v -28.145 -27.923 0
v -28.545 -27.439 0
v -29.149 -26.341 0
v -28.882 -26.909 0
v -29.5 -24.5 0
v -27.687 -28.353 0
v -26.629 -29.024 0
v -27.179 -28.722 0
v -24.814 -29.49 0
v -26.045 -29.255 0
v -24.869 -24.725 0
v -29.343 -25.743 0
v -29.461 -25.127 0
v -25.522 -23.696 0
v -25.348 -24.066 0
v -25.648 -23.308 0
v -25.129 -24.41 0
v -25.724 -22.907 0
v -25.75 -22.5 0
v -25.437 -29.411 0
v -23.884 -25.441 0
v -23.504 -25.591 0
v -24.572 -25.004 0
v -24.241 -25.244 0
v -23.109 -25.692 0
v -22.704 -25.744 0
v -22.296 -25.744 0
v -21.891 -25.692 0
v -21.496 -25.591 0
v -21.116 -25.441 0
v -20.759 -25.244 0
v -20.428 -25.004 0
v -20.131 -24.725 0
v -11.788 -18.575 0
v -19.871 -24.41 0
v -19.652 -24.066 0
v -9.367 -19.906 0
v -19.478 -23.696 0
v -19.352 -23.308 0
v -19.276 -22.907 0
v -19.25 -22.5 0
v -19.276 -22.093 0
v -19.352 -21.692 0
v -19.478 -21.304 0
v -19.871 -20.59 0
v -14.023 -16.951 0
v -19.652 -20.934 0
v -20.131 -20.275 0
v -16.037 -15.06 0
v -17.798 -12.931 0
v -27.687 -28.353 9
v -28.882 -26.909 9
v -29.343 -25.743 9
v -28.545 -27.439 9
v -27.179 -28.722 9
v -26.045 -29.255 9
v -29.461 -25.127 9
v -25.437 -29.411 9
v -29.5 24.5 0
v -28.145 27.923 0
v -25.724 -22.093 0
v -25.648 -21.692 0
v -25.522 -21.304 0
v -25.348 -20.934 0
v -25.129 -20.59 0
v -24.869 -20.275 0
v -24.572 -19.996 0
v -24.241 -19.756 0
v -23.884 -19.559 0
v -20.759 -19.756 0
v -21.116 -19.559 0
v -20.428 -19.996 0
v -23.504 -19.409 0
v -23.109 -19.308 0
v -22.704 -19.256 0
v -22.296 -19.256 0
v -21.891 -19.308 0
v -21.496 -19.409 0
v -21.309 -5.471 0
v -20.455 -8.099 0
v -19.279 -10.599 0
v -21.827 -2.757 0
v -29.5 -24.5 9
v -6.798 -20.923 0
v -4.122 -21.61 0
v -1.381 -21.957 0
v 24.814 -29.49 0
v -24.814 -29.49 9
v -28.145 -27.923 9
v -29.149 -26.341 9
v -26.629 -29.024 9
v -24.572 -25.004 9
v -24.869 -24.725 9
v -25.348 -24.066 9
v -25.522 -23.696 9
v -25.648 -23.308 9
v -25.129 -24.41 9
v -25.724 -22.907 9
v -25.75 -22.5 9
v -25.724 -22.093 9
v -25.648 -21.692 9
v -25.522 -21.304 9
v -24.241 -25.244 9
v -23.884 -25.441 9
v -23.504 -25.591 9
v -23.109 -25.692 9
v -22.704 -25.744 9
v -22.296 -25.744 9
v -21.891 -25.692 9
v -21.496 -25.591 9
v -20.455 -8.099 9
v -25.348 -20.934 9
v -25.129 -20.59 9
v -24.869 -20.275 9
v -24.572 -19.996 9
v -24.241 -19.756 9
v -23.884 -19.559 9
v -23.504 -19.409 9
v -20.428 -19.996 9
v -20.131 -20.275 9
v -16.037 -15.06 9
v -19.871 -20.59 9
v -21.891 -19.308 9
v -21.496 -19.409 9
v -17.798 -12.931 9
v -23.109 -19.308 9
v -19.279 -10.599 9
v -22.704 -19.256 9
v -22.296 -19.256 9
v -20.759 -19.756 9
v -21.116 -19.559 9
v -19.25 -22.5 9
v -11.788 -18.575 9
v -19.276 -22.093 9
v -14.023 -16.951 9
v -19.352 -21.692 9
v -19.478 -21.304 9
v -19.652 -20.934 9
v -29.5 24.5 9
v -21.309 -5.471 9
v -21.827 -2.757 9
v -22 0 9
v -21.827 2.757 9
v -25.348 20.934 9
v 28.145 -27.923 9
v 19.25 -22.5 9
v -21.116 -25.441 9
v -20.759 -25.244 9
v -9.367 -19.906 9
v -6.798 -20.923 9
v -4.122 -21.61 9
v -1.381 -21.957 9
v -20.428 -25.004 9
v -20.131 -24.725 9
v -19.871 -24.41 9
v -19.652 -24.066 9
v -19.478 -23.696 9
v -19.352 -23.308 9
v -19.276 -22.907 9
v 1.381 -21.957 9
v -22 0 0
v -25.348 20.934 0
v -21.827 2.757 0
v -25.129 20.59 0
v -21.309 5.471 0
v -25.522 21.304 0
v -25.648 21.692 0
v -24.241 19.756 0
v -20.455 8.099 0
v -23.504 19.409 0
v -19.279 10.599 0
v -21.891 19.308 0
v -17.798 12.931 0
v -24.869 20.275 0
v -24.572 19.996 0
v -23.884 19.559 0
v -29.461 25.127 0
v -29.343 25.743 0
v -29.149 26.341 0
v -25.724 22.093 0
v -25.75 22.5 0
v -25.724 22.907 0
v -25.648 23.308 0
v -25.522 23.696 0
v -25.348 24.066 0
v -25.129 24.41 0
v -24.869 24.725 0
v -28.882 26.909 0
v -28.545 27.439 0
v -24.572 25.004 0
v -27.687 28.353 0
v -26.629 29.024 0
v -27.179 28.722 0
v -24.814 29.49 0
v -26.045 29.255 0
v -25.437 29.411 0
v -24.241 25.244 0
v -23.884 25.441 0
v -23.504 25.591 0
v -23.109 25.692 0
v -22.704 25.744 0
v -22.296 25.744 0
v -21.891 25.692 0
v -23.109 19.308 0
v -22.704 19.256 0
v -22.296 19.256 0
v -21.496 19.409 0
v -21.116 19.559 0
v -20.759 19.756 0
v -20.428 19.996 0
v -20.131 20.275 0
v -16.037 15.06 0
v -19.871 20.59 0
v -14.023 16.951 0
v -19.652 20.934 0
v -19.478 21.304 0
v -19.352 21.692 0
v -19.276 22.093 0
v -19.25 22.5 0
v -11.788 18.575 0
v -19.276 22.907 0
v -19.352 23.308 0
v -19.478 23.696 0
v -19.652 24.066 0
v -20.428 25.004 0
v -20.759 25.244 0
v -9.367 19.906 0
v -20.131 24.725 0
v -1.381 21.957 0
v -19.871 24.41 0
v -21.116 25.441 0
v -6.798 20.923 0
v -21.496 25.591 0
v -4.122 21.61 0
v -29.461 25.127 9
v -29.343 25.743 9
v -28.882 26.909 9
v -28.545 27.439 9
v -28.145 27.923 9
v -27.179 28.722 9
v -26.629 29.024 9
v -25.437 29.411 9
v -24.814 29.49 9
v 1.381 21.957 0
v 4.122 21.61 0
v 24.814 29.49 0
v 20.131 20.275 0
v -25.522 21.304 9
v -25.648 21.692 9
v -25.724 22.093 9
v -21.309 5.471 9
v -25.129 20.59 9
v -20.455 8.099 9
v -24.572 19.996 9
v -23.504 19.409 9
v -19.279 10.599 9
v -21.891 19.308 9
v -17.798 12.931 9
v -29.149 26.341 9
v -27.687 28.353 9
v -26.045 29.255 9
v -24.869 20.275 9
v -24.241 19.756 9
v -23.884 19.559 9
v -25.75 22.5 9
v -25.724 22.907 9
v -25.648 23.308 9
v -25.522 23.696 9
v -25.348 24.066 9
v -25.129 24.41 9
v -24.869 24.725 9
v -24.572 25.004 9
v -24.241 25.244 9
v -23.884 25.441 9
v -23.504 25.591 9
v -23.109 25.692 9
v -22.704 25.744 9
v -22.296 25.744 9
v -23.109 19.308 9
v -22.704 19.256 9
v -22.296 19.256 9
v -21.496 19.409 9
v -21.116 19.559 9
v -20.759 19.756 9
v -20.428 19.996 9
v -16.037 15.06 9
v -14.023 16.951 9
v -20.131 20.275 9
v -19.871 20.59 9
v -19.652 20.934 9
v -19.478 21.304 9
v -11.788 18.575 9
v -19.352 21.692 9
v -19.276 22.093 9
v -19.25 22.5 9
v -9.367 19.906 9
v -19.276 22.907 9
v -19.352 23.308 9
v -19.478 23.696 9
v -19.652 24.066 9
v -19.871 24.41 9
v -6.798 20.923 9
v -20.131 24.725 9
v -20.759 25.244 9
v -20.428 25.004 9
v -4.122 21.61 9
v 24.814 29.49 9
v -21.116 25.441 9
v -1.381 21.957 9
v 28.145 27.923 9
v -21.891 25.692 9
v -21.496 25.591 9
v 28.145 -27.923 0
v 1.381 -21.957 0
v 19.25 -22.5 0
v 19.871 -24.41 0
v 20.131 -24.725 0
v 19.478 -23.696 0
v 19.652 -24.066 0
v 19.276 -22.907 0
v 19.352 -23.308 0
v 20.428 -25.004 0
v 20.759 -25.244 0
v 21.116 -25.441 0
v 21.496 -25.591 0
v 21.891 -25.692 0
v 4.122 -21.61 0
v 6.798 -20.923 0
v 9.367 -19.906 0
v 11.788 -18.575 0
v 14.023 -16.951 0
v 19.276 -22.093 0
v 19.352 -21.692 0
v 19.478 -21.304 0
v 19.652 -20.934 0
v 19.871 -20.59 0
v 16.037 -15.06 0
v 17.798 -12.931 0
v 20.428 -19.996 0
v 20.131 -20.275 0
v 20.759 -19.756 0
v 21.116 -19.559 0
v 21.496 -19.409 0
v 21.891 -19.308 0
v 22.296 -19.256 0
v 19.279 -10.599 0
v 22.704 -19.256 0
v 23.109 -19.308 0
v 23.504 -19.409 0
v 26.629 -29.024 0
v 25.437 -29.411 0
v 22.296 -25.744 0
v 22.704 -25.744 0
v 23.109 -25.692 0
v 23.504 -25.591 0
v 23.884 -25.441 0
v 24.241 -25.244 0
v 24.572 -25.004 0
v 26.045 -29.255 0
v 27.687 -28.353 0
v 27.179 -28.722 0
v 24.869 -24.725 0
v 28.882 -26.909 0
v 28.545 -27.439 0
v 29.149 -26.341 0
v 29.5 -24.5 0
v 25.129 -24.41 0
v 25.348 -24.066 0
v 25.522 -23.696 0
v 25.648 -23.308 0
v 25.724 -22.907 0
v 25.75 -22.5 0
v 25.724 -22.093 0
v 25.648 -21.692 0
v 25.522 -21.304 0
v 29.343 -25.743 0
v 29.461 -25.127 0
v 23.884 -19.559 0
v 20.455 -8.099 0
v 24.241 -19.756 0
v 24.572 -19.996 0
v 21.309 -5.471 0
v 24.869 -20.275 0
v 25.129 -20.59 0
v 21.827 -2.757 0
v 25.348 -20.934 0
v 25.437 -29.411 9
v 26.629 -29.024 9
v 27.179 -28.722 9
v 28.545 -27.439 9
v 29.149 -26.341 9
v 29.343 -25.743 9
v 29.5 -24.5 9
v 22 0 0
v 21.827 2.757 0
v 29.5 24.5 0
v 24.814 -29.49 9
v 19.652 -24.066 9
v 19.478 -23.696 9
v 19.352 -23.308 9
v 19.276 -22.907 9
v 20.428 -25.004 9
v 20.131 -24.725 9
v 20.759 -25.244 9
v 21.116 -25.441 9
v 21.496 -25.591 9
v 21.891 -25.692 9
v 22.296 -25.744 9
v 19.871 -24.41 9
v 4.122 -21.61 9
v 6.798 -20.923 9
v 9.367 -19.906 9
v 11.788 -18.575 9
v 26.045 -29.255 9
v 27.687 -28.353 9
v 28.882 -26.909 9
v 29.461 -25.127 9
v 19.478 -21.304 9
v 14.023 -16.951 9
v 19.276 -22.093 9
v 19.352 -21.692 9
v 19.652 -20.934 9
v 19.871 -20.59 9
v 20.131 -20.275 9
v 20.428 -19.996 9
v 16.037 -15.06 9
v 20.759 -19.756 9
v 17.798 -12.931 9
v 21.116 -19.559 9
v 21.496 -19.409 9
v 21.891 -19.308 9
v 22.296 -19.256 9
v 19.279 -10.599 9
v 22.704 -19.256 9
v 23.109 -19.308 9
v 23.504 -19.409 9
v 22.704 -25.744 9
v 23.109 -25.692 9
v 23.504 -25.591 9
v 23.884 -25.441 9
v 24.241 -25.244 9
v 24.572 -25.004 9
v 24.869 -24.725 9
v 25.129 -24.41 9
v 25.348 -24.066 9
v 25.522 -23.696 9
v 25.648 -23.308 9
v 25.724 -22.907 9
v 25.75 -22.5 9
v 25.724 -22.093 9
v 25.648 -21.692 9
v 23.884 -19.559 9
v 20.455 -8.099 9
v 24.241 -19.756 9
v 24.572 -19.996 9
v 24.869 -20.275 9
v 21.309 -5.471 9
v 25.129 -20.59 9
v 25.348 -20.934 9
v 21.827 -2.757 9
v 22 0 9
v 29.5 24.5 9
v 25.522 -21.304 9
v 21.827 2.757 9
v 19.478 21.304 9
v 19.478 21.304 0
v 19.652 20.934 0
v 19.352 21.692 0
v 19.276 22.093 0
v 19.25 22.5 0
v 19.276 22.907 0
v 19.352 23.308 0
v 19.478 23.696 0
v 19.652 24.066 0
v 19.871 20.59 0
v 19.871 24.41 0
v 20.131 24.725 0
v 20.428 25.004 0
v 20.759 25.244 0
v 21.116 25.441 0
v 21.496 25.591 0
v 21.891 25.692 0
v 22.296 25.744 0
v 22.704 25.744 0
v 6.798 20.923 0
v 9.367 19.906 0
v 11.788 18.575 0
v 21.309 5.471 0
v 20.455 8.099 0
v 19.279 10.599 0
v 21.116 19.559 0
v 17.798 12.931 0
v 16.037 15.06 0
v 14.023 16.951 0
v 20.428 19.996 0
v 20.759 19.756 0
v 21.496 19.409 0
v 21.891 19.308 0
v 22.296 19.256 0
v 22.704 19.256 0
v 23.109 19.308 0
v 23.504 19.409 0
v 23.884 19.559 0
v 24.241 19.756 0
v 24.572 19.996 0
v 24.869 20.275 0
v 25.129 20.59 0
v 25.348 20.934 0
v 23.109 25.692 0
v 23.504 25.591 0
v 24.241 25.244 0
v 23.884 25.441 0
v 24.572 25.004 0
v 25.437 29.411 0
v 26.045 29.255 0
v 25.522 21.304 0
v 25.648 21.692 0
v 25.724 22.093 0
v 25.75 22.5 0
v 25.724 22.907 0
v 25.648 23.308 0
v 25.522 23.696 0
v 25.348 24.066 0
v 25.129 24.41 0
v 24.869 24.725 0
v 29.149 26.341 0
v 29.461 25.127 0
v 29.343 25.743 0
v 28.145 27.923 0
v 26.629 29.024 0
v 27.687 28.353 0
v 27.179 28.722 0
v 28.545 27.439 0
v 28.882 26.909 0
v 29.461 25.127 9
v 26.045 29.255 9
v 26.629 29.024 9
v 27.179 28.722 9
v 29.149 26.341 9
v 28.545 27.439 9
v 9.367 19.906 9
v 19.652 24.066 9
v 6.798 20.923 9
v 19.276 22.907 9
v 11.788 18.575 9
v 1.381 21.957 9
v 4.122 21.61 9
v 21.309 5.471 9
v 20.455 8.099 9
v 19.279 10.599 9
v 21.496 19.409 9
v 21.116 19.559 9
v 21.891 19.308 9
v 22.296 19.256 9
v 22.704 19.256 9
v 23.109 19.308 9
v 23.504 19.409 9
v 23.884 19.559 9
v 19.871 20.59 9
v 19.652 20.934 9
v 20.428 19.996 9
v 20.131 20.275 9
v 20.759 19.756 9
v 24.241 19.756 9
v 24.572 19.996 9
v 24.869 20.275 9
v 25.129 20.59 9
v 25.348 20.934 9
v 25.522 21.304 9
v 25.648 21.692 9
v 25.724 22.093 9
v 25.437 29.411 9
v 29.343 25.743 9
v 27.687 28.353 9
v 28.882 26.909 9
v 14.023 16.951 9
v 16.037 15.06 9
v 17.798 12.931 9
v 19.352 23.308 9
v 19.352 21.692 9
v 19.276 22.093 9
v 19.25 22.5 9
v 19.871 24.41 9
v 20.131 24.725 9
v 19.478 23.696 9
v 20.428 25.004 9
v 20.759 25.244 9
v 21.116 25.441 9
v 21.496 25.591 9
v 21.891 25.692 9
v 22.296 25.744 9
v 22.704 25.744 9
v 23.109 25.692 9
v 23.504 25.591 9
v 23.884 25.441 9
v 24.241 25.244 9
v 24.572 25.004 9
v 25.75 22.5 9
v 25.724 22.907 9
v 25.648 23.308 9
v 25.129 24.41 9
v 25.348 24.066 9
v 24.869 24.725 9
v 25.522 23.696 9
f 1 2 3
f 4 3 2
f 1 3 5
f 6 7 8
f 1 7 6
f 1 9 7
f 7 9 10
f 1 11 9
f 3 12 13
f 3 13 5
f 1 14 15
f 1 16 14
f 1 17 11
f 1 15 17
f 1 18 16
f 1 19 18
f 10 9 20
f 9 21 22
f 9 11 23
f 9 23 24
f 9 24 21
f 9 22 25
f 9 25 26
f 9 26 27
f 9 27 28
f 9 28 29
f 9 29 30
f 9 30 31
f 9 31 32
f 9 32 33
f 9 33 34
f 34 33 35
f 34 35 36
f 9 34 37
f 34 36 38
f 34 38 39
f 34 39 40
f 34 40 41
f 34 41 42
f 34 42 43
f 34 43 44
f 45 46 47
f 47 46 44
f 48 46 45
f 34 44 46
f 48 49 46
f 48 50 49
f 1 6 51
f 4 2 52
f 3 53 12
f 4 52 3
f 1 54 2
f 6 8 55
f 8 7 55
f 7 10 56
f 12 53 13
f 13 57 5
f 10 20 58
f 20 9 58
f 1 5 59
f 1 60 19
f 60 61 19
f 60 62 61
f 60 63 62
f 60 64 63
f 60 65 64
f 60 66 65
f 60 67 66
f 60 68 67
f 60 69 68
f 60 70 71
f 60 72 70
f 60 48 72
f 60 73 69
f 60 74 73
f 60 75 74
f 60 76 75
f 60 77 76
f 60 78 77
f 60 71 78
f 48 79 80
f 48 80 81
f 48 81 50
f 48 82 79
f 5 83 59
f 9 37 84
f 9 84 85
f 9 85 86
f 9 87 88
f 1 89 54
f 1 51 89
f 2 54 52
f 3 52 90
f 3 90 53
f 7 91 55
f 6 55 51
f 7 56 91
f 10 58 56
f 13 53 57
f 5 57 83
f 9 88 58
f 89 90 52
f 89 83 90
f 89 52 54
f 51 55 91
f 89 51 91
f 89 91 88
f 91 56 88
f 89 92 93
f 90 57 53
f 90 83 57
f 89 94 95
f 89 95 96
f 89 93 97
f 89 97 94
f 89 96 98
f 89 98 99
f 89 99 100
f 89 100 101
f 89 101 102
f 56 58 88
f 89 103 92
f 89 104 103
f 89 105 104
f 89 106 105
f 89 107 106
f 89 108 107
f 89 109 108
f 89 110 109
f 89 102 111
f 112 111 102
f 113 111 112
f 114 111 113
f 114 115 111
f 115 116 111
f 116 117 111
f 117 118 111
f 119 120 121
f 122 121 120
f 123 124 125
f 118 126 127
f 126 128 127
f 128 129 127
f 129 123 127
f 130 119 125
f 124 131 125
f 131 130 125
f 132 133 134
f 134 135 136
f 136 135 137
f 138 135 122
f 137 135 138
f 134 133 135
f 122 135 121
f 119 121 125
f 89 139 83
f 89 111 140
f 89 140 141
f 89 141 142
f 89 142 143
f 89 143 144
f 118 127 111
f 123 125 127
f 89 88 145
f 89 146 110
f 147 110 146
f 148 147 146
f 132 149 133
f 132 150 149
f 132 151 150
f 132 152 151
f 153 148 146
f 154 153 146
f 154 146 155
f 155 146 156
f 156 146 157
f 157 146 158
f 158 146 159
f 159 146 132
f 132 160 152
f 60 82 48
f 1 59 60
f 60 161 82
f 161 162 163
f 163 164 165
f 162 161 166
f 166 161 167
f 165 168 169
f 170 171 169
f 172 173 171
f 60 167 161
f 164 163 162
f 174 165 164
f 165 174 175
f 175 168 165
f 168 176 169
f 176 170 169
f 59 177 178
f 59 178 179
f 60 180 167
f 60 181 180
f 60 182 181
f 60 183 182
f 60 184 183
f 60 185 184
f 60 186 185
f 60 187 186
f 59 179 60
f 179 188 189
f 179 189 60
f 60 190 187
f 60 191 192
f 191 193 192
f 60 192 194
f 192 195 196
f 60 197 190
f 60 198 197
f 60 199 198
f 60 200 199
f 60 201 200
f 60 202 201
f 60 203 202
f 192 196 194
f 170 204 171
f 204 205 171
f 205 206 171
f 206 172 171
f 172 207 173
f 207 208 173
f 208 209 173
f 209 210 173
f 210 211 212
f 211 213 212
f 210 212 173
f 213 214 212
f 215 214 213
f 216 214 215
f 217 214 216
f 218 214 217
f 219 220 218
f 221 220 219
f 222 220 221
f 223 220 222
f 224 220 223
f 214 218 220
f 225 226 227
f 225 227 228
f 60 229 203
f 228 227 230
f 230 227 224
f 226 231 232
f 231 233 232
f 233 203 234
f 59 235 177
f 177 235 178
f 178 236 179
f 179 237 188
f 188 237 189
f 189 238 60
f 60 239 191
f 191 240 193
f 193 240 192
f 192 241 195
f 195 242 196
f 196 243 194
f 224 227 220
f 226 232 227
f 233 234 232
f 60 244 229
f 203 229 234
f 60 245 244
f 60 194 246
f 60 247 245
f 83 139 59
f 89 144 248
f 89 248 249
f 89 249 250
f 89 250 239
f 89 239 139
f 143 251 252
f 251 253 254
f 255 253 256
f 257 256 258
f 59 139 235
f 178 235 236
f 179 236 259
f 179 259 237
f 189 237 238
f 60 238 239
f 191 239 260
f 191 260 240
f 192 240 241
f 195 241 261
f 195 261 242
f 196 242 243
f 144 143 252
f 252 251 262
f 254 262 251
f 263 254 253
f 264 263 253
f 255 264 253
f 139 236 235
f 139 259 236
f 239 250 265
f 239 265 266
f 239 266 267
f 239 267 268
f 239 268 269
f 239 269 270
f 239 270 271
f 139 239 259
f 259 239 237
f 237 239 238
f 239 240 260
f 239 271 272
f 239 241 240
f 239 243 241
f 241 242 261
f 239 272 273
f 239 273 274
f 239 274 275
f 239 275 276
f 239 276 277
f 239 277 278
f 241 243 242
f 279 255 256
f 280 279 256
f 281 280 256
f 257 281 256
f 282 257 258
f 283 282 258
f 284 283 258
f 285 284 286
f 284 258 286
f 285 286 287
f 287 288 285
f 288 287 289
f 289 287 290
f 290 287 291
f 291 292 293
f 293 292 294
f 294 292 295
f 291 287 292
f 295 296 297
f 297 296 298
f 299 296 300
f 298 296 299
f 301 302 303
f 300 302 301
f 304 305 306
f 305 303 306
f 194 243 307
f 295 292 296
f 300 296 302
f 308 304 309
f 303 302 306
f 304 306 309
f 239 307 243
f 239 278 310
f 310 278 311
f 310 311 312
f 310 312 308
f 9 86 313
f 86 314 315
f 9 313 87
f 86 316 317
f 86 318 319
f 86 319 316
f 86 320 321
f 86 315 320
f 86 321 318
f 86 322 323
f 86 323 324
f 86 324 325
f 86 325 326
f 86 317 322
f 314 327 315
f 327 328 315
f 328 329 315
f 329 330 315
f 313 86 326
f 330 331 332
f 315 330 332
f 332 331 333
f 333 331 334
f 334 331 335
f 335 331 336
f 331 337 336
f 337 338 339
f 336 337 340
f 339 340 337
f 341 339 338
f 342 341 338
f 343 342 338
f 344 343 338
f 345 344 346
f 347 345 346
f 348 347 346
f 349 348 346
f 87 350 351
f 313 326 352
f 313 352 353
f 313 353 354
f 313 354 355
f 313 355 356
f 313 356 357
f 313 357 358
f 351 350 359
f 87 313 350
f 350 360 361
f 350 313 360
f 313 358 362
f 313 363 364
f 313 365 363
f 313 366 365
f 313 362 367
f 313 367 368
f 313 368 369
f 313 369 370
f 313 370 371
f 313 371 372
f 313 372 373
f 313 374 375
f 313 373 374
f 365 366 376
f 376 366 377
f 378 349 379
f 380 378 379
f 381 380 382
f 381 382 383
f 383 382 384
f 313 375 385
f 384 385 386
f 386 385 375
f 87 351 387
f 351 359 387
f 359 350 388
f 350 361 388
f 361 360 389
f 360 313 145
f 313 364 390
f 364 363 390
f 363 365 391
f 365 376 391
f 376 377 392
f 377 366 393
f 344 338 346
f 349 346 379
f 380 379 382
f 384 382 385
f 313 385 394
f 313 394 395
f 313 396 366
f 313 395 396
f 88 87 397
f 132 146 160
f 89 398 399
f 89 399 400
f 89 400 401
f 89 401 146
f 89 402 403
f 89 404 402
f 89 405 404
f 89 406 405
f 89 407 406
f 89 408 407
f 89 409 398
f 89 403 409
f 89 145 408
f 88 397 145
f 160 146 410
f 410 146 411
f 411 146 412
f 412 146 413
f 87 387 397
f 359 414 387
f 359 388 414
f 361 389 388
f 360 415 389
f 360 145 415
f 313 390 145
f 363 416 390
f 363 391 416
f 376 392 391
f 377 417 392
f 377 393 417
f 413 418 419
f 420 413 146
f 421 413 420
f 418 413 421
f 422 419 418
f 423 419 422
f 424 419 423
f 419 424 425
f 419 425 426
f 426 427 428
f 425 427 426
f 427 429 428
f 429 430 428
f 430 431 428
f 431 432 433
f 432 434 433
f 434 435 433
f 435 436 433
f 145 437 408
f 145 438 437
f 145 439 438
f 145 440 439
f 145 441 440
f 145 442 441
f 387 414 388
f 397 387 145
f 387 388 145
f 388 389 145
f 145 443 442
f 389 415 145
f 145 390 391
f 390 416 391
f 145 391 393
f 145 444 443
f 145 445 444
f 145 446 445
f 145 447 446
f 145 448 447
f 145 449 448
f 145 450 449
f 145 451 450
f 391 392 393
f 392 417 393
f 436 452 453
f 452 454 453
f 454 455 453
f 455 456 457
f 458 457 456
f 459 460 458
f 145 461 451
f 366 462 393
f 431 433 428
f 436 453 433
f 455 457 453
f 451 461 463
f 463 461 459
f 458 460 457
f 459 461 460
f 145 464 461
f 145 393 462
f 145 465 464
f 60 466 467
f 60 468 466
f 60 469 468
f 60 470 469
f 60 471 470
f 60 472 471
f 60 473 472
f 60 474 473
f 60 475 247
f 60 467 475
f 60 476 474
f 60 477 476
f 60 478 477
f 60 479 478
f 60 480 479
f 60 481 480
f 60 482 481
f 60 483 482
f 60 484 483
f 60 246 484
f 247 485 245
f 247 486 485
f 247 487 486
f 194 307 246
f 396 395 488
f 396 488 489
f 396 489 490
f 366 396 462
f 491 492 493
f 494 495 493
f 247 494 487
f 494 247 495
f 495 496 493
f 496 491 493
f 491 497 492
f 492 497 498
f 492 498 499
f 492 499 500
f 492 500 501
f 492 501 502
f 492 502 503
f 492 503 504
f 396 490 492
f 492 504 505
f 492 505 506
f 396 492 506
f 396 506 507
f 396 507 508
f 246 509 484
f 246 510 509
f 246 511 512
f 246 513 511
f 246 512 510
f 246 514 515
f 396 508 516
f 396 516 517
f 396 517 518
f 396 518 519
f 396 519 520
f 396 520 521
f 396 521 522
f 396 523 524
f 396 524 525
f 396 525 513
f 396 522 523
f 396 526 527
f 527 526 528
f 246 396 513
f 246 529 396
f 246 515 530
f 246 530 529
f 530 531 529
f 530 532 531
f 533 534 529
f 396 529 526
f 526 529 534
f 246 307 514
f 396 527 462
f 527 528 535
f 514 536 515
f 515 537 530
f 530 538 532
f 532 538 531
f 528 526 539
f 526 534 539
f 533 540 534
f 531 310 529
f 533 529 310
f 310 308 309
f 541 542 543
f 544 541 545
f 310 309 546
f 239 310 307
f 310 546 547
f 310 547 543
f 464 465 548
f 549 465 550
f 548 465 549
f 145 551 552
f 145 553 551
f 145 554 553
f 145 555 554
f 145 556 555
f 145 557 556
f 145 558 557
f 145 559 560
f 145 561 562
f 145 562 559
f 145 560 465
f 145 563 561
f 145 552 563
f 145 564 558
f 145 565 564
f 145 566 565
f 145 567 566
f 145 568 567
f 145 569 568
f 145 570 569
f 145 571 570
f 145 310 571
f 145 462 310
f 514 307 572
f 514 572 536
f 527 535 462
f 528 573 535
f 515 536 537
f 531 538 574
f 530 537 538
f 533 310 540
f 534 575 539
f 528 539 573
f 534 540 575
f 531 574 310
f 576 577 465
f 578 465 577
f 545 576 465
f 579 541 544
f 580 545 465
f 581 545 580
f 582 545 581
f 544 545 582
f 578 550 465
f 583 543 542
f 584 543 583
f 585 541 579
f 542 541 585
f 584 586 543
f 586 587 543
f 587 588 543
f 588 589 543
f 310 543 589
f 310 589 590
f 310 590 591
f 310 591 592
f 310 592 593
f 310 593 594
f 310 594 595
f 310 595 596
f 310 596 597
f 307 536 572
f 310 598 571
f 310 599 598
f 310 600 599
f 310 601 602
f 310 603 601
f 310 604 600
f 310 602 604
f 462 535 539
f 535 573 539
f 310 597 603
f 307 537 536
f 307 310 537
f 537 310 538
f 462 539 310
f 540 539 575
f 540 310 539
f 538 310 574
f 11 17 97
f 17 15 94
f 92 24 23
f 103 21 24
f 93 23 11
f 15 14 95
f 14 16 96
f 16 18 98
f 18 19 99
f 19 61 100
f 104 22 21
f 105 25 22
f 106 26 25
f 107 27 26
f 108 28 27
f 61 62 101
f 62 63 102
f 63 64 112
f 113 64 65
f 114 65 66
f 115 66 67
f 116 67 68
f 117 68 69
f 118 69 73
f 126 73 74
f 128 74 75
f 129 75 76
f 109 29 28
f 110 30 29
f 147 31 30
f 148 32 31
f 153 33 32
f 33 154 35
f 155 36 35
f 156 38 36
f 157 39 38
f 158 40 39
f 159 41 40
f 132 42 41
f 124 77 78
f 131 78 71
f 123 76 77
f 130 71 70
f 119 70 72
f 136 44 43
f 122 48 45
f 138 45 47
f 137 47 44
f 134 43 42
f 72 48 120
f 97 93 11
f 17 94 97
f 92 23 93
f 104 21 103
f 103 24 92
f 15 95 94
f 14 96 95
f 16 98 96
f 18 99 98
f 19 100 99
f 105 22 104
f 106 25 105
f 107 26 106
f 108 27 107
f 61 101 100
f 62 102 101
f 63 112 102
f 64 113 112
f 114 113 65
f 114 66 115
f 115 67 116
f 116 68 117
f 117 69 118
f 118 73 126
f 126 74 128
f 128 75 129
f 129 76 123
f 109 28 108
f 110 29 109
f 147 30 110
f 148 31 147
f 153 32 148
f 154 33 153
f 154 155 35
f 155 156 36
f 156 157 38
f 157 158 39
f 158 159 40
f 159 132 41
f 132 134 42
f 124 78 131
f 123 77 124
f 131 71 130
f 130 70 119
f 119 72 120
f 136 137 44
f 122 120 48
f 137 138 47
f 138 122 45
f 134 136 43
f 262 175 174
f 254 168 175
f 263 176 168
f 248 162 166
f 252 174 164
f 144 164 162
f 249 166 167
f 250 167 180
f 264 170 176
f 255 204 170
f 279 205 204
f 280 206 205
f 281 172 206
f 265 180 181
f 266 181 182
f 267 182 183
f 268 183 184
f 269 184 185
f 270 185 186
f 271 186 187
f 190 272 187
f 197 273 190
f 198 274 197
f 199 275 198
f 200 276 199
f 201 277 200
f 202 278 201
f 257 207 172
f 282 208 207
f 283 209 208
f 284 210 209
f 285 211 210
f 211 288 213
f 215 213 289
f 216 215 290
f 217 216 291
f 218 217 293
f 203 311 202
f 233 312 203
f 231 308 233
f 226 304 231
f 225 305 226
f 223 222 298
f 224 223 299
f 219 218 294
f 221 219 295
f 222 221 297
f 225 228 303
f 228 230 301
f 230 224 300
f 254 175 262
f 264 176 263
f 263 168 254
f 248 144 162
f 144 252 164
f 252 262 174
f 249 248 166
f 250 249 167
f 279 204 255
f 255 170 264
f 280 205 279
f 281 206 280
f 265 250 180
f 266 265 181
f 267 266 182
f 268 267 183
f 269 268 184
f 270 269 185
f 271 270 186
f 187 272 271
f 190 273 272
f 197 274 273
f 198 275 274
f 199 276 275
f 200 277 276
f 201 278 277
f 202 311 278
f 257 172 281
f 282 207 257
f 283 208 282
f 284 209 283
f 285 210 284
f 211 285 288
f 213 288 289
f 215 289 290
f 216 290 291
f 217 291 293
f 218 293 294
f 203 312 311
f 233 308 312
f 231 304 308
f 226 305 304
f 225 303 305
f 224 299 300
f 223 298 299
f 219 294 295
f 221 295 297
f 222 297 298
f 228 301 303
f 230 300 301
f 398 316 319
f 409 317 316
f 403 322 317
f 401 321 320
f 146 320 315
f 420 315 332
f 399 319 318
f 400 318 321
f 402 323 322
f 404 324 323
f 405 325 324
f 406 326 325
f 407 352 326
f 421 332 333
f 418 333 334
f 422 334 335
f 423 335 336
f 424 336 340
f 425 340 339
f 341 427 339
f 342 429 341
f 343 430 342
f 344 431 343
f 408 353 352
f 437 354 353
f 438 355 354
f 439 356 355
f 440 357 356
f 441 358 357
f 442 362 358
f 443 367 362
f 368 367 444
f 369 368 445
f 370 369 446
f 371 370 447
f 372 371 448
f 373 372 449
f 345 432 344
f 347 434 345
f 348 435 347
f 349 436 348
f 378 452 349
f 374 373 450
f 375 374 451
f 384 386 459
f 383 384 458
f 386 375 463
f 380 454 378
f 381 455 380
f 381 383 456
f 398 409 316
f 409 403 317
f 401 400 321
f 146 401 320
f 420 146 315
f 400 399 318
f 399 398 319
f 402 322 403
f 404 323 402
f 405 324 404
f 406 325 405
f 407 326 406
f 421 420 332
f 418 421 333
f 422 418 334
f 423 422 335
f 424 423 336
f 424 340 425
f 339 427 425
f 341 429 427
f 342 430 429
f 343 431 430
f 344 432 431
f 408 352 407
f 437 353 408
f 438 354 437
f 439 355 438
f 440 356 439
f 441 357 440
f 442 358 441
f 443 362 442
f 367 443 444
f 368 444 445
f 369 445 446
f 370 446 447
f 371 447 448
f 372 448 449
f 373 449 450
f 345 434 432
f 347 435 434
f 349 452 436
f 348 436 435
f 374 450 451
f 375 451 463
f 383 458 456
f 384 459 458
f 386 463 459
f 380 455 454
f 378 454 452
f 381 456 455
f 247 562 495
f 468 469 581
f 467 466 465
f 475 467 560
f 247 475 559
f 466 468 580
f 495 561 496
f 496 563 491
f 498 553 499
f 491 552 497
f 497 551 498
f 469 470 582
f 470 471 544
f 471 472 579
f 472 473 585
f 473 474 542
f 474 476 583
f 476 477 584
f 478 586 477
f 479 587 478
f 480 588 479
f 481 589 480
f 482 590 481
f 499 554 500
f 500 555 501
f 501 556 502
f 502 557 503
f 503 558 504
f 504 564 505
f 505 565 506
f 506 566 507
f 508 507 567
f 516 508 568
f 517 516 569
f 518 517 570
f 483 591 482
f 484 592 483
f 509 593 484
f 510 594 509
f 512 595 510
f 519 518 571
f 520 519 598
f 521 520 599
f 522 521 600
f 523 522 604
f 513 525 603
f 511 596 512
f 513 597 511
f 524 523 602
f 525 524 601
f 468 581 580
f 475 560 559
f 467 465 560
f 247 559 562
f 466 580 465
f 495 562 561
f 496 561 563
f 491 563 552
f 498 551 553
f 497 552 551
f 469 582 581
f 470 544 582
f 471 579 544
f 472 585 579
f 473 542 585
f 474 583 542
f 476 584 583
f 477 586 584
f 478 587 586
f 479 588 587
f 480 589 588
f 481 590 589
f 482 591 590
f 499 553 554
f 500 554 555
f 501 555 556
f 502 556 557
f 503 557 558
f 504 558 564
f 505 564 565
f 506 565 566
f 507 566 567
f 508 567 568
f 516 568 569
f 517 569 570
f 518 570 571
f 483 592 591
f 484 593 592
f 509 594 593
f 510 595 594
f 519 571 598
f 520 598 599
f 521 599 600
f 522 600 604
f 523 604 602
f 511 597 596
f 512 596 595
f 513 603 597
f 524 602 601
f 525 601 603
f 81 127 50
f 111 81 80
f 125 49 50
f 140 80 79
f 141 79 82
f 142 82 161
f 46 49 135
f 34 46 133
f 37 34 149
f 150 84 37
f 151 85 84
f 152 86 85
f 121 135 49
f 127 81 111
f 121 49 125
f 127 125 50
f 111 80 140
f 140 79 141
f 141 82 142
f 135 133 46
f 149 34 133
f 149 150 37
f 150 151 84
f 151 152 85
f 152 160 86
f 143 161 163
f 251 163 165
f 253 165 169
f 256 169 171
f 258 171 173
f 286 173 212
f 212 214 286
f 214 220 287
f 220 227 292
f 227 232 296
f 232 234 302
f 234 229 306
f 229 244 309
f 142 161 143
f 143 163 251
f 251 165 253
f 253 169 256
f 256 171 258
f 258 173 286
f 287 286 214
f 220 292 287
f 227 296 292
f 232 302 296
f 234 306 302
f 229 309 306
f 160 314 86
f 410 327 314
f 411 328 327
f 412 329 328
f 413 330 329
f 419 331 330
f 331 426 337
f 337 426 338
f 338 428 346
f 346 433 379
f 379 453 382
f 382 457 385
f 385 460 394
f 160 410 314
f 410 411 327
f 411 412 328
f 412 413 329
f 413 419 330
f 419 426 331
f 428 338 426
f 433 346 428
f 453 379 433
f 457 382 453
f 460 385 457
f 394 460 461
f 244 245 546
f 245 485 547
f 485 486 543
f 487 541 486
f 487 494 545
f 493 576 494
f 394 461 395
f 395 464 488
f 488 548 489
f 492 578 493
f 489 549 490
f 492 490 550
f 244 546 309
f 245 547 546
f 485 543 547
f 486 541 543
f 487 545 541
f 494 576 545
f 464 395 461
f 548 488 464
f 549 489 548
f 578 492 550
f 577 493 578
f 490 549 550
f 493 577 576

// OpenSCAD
$fn = 50;

difference() {
	union() {
		hull() {
			translate(v = [-24.5, 24.5, 0]) {
				cylinder(h = 9, r = 5);
			}
			translate(v = [24.5, 24.5, 0]) {
				cylinder(h = 9, r = 5);
			}
			translate(v = [-24.5, -24.5, 0]) {
				cylinder(h = 9, r = 5);
			}
			translate(v = [24.5, -24.5, 0]) {
				cylinder(h = 9, r = 5);
			}
		}
	}
	union() {
		translate(v = [-22.5, -22.5, -100.0]) {
			cylinder(h = 200, r = 3.25);
		}
		translate(v = [-22.5, 22.5, -100.0]) {
			cylinder(h = 200, r = 3.25);
		}
		translate(v = [22.5, -22.5, -100.0]) {
			cylinder(h = 200, r = 3.25);
		}
		translate(v = [22.5, 22.5, -100.0]) {
			cylinder(h = 200, r = 3.25);
		}
		translate(v = [-22.5, -22.5, -100.0]) {
			cylinder(h = 200, r = 1.8);
		}
		translate(v = [-22.5, 22.5, -100.0]) {
			cylinder(h = 200, r = 1.8);
		}
		translate(v = [22.5, -22.5, -100.0]) {
			cylinder(h = 200, r = 1.8);
		}
		translate(v = [22.5, 22.5, -100.0]) {
			cylinder(h = 200, r = 1.8);
		}
		cylinder(h = 9, r = 22.0);
	}
}
